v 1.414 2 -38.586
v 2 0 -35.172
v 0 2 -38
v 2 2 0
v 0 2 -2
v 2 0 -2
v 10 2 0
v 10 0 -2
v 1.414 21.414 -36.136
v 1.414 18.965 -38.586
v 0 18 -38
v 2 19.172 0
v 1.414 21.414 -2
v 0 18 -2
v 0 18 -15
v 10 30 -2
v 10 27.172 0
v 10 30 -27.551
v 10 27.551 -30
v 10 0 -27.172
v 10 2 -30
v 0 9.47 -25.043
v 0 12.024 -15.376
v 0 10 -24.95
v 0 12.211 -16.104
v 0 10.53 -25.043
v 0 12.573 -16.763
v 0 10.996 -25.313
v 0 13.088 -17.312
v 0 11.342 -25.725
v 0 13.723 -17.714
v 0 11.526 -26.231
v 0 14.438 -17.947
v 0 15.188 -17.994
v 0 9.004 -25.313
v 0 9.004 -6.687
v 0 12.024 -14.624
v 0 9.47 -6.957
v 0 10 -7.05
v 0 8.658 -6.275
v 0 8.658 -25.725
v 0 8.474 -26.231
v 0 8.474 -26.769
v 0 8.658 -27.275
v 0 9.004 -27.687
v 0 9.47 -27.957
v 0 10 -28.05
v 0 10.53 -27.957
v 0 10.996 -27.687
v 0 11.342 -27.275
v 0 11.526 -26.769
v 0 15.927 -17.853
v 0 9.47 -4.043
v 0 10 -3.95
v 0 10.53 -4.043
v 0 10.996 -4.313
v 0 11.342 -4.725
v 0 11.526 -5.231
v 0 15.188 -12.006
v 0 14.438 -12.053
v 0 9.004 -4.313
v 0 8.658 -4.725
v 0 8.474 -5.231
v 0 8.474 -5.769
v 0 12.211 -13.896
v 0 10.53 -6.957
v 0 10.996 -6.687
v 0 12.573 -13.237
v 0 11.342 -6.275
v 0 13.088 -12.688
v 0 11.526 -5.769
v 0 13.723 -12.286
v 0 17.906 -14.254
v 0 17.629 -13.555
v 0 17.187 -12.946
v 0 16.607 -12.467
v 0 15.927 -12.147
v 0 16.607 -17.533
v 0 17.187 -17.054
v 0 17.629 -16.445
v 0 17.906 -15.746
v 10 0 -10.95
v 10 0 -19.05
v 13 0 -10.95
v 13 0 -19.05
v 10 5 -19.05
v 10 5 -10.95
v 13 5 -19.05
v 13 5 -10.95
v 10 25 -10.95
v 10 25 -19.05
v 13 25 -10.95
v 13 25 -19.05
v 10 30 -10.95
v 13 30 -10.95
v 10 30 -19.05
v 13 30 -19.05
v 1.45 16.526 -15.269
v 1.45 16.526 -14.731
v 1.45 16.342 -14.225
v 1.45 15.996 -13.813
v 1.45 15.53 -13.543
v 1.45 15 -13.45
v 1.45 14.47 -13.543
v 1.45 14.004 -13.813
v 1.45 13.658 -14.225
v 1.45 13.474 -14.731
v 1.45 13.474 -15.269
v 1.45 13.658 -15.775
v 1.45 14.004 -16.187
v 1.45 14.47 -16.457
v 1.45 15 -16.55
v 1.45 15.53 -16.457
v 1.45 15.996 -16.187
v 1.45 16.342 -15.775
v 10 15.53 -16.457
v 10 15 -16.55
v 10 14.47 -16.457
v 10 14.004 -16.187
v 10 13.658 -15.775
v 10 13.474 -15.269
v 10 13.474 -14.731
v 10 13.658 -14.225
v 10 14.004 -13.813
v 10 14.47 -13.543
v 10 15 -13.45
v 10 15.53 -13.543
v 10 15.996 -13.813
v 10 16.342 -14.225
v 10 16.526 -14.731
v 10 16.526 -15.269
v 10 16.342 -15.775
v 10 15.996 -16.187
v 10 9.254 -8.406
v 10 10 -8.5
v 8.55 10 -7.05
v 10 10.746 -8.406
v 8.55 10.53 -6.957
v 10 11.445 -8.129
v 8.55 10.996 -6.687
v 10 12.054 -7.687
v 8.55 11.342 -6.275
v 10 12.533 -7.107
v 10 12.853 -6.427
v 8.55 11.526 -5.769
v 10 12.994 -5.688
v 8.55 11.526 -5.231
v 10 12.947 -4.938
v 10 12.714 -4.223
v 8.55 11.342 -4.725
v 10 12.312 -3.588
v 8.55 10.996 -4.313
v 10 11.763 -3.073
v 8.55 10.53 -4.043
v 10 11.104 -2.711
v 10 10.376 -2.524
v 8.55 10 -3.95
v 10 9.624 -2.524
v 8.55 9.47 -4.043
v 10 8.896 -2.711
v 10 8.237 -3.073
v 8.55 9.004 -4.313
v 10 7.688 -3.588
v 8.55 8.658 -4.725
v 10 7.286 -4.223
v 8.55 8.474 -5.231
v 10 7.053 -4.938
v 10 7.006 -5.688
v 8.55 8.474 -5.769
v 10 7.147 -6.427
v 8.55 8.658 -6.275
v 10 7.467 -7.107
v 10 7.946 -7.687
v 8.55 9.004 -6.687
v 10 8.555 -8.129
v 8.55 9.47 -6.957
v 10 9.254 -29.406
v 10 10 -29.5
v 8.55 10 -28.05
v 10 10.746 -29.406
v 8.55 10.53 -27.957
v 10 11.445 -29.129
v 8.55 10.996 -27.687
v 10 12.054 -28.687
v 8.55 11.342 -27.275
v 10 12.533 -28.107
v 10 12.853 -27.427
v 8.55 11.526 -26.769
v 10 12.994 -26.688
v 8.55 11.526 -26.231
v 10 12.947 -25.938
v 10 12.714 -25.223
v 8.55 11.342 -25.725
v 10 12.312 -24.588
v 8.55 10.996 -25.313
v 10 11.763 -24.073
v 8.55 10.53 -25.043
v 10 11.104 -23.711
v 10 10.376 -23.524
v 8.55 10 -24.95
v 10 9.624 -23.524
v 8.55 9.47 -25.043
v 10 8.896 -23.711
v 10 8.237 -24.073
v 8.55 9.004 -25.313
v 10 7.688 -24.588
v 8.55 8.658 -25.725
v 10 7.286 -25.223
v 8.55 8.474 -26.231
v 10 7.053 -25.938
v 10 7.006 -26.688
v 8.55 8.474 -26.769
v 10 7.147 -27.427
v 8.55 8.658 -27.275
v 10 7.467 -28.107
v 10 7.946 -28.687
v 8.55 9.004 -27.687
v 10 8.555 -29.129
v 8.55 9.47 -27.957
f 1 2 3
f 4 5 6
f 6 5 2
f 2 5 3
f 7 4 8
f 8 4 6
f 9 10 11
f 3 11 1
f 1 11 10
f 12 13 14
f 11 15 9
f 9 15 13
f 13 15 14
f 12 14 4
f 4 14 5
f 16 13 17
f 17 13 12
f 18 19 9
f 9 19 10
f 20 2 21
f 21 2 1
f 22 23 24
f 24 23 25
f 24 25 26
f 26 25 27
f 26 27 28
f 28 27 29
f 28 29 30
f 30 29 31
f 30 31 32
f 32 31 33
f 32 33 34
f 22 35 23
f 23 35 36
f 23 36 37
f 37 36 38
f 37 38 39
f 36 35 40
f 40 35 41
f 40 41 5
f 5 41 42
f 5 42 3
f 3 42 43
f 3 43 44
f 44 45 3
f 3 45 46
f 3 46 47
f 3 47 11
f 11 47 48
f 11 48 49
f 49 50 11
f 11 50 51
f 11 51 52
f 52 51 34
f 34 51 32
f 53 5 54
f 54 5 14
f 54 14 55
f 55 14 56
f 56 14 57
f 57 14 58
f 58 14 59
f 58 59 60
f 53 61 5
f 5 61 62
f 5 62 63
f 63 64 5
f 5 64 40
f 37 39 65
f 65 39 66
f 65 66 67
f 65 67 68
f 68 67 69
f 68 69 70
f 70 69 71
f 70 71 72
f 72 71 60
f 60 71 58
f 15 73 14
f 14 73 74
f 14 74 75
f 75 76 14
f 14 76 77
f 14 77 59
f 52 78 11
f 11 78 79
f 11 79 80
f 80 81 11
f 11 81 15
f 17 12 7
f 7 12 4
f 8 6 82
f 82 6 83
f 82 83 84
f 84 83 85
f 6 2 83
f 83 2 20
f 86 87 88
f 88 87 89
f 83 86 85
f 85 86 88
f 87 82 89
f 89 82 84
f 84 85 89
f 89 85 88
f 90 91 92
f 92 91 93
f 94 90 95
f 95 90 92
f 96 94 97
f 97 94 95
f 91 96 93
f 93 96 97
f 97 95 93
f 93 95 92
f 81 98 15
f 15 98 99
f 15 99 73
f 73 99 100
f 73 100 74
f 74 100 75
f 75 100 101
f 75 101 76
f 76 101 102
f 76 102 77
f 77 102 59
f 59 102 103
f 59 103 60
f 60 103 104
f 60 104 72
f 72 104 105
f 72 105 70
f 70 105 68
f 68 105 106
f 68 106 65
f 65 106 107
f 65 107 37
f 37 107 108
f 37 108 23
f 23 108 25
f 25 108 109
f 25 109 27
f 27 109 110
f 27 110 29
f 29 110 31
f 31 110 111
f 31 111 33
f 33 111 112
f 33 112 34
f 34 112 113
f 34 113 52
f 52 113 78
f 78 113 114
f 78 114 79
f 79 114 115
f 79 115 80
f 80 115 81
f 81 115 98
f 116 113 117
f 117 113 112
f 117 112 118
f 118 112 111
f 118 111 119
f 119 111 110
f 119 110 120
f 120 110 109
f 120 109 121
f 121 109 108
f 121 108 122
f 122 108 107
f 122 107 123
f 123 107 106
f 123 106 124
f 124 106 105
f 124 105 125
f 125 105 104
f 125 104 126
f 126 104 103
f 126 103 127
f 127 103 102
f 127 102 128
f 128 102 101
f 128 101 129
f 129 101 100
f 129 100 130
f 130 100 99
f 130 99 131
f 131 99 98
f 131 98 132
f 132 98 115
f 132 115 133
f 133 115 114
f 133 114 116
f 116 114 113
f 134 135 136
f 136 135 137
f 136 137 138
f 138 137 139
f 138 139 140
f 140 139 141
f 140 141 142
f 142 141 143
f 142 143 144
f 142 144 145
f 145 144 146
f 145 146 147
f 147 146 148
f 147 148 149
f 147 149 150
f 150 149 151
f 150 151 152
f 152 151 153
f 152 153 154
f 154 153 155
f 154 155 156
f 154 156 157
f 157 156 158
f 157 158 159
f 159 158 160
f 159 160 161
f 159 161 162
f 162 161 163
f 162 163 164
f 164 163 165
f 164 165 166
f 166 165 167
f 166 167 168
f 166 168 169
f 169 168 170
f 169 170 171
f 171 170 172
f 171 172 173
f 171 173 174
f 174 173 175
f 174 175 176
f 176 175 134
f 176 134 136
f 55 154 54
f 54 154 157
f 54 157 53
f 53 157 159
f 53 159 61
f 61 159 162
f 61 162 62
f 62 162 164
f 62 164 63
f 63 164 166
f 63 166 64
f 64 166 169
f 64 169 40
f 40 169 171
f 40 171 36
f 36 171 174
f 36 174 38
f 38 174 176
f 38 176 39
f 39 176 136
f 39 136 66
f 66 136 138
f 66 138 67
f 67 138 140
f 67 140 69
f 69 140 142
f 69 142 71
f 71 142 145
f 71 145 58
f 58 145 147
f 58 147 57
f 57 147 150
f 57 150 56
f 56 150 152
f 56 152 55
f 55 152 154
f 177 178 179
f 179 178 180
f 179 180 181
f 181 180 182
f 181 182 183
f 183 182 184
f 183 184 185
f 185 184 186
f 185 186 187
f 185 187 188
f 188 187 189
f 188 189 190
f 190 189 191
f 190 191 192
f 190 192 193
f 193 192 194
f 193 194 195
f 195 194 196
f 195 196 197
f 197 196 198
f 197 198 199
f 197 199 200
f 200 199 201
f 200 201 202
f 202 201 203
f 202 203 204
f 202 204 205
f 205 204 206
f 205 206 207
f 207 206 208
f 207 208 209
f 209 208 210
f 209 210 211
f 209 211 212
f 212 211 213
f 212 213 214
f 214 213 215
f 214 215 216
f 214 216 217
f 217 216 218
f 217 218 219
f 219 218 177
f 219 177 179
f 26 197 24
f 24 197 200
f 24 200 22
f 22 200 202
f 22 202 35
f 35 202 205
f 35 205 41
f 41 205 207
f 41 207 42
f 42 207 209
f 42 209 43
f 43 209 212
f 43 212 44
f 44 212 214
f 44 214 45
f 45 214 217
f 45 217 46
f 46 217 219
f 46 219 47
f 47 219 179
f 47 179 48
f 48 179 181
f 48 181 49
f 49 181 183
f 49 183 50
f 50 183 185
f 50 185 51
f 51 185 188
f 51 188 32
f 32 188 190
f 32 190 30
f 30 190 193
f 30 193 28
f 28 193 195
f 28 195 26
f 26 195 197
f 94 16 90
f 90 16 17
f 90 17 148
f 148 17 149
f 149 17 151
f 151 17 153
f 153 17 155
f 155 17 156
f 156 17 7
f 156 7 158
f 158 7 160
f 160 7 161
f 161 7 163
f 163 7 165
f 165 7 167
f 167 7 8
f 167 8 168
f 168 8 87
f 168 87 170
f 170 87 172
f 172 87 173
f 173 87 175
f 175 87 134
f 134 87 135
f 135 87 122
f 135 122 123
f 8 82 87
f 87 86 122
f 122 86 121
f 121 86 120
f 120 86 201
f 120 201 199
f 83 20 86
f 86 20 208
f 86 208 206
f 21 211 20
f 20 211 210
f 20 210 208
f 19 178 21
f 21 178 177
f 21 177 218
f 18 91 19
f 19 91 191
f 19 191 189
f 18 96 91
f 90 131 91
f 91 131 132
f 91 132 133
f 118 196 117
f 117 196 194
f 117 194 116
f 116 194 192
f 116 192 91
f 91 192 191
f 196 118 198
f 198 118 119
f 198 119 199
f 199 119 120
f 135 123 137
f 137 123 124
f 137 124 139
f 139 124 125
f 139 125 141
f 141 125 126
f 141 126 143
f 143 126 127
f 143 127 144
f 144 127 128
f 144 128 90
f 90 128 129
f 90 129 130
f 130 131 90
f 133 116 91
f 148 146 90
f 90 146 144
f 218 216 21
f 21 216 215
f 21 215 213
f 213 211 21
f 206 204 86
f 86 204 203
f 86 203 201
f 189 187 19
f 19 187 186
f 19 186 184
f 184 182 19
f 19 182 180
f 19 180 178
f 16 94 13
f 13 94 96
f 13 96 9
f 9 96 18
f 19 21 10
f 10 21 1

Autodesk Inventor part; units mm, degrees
ref_plane "XZ Plane" through (0, 0, 0) normal (0, 1, 0) x (-1, 0, 0)
ref_plane "XY Plane" through (0, 0, 0) normal (0, 0, 1) x (1, 0, 0)
sketch "草图1" plane through (0, 0, 0) normal (1, 0, 0) x (0, 1, 0)
  line L0 (0, 0) -> (20, 0)
  line L1 (20, 0) -> (20, -40)
  line L2 (20, -40) -> (0, -40)
  line L3 (0, -40) -> (0, 0)
  dimension "d0" = 20
  dimension "d1" = 40
ref_plane "工作平面1" through (10, 0, 0) normal (1, 0, 0) x (0, 1, 0)
sketch "草图2" plane through (10, 0, 0) normal (1, 0, 0) x (0, 1, 0)
  line L0 (0, 0) -> (30, 0)
  line L1 (30, 0) -> (30, -30)
  line L2 (30, -30) -> (0, -30)
  line L3 (0, -30) -> (0, 0)
  dimension "d7" = 30
  dimension "d8" = 30
loft "放样1" add profiles "草图2", "草图1"
sketch "草图3" plane through (10, 0, 0) normal (1, 0, 0) x (0, 0, -1)
  line L0 (0, 0) -> (0, 30) projected
  line L1 (30, 0) -> (0, 0) projected
  point P0 (5.5, 10)
  point P1 (26.5, 10)
  dimension "d14" = 21
  dimension "d15" = 5.5
  dimension "d16" = 10
hole "孔1" at (10, 10, -5.5) at (10, 10, -26.5) direction (-1, 0, 0) diameter 3.1 end through all countersink diameter 6 countersink angle 90
sketch "草图5" plane through (0, 0, 0) normal (-1, 0, 0) x (0, 0, 1)
  line L0 (0, 0) -> (0, 20) projected
  point P0 (-15, 15)
  dimension "d26" = 15
  dimension "d27" = 15
hole "孔2" at (0, 15, -15) direction (1, 0, 0) diameter 3.1 end through all countersink diameter 6 countersink angle 90
sketch "草图6" plane through (10, 0, 0) normal (1, 0, 0) x (0, 0, -1)
  line L0 (0, 30) -> (30, 30) projected
  line L1 (10.95, 30) -> (19.05, 30)
  line L2 (19.05, 30) -> (19.05, 25)
  line L3 (19.05, 25) -> (10.95, 25)
  line L4 (10.95, 25) -> (10.95, 30)
  line L5 (30, 0) -> (0, 0) projected
  line L6 (10.95, 5) -> (19.05, 5)
  line L7 (19.05, 5) -> (19.05, 0)
  line L8 (19.05, 0) -> (10.95, 0)
  line L9 (10.95, 0) -> (10.95, 5)
  line L10 (0, 0) -> (0, 30) projected
  point P0 (15, 30)
  dimension "d35" = 8.1
  dimension "d36" = 5
  dimension "d37" = 15
extrude "拉伸1" add sketch "草图6" along normal blind 3
chamfer "倒角1" distance 2 angle 45 8 edges at (5, 25, 0) (5, 25, -35) (5, 0, -35) (0, 10, -40) (0, 0, -20) (5, 0, 0) (0, 20, -20) (0, 10, 0)
properties part number "电源支架"
